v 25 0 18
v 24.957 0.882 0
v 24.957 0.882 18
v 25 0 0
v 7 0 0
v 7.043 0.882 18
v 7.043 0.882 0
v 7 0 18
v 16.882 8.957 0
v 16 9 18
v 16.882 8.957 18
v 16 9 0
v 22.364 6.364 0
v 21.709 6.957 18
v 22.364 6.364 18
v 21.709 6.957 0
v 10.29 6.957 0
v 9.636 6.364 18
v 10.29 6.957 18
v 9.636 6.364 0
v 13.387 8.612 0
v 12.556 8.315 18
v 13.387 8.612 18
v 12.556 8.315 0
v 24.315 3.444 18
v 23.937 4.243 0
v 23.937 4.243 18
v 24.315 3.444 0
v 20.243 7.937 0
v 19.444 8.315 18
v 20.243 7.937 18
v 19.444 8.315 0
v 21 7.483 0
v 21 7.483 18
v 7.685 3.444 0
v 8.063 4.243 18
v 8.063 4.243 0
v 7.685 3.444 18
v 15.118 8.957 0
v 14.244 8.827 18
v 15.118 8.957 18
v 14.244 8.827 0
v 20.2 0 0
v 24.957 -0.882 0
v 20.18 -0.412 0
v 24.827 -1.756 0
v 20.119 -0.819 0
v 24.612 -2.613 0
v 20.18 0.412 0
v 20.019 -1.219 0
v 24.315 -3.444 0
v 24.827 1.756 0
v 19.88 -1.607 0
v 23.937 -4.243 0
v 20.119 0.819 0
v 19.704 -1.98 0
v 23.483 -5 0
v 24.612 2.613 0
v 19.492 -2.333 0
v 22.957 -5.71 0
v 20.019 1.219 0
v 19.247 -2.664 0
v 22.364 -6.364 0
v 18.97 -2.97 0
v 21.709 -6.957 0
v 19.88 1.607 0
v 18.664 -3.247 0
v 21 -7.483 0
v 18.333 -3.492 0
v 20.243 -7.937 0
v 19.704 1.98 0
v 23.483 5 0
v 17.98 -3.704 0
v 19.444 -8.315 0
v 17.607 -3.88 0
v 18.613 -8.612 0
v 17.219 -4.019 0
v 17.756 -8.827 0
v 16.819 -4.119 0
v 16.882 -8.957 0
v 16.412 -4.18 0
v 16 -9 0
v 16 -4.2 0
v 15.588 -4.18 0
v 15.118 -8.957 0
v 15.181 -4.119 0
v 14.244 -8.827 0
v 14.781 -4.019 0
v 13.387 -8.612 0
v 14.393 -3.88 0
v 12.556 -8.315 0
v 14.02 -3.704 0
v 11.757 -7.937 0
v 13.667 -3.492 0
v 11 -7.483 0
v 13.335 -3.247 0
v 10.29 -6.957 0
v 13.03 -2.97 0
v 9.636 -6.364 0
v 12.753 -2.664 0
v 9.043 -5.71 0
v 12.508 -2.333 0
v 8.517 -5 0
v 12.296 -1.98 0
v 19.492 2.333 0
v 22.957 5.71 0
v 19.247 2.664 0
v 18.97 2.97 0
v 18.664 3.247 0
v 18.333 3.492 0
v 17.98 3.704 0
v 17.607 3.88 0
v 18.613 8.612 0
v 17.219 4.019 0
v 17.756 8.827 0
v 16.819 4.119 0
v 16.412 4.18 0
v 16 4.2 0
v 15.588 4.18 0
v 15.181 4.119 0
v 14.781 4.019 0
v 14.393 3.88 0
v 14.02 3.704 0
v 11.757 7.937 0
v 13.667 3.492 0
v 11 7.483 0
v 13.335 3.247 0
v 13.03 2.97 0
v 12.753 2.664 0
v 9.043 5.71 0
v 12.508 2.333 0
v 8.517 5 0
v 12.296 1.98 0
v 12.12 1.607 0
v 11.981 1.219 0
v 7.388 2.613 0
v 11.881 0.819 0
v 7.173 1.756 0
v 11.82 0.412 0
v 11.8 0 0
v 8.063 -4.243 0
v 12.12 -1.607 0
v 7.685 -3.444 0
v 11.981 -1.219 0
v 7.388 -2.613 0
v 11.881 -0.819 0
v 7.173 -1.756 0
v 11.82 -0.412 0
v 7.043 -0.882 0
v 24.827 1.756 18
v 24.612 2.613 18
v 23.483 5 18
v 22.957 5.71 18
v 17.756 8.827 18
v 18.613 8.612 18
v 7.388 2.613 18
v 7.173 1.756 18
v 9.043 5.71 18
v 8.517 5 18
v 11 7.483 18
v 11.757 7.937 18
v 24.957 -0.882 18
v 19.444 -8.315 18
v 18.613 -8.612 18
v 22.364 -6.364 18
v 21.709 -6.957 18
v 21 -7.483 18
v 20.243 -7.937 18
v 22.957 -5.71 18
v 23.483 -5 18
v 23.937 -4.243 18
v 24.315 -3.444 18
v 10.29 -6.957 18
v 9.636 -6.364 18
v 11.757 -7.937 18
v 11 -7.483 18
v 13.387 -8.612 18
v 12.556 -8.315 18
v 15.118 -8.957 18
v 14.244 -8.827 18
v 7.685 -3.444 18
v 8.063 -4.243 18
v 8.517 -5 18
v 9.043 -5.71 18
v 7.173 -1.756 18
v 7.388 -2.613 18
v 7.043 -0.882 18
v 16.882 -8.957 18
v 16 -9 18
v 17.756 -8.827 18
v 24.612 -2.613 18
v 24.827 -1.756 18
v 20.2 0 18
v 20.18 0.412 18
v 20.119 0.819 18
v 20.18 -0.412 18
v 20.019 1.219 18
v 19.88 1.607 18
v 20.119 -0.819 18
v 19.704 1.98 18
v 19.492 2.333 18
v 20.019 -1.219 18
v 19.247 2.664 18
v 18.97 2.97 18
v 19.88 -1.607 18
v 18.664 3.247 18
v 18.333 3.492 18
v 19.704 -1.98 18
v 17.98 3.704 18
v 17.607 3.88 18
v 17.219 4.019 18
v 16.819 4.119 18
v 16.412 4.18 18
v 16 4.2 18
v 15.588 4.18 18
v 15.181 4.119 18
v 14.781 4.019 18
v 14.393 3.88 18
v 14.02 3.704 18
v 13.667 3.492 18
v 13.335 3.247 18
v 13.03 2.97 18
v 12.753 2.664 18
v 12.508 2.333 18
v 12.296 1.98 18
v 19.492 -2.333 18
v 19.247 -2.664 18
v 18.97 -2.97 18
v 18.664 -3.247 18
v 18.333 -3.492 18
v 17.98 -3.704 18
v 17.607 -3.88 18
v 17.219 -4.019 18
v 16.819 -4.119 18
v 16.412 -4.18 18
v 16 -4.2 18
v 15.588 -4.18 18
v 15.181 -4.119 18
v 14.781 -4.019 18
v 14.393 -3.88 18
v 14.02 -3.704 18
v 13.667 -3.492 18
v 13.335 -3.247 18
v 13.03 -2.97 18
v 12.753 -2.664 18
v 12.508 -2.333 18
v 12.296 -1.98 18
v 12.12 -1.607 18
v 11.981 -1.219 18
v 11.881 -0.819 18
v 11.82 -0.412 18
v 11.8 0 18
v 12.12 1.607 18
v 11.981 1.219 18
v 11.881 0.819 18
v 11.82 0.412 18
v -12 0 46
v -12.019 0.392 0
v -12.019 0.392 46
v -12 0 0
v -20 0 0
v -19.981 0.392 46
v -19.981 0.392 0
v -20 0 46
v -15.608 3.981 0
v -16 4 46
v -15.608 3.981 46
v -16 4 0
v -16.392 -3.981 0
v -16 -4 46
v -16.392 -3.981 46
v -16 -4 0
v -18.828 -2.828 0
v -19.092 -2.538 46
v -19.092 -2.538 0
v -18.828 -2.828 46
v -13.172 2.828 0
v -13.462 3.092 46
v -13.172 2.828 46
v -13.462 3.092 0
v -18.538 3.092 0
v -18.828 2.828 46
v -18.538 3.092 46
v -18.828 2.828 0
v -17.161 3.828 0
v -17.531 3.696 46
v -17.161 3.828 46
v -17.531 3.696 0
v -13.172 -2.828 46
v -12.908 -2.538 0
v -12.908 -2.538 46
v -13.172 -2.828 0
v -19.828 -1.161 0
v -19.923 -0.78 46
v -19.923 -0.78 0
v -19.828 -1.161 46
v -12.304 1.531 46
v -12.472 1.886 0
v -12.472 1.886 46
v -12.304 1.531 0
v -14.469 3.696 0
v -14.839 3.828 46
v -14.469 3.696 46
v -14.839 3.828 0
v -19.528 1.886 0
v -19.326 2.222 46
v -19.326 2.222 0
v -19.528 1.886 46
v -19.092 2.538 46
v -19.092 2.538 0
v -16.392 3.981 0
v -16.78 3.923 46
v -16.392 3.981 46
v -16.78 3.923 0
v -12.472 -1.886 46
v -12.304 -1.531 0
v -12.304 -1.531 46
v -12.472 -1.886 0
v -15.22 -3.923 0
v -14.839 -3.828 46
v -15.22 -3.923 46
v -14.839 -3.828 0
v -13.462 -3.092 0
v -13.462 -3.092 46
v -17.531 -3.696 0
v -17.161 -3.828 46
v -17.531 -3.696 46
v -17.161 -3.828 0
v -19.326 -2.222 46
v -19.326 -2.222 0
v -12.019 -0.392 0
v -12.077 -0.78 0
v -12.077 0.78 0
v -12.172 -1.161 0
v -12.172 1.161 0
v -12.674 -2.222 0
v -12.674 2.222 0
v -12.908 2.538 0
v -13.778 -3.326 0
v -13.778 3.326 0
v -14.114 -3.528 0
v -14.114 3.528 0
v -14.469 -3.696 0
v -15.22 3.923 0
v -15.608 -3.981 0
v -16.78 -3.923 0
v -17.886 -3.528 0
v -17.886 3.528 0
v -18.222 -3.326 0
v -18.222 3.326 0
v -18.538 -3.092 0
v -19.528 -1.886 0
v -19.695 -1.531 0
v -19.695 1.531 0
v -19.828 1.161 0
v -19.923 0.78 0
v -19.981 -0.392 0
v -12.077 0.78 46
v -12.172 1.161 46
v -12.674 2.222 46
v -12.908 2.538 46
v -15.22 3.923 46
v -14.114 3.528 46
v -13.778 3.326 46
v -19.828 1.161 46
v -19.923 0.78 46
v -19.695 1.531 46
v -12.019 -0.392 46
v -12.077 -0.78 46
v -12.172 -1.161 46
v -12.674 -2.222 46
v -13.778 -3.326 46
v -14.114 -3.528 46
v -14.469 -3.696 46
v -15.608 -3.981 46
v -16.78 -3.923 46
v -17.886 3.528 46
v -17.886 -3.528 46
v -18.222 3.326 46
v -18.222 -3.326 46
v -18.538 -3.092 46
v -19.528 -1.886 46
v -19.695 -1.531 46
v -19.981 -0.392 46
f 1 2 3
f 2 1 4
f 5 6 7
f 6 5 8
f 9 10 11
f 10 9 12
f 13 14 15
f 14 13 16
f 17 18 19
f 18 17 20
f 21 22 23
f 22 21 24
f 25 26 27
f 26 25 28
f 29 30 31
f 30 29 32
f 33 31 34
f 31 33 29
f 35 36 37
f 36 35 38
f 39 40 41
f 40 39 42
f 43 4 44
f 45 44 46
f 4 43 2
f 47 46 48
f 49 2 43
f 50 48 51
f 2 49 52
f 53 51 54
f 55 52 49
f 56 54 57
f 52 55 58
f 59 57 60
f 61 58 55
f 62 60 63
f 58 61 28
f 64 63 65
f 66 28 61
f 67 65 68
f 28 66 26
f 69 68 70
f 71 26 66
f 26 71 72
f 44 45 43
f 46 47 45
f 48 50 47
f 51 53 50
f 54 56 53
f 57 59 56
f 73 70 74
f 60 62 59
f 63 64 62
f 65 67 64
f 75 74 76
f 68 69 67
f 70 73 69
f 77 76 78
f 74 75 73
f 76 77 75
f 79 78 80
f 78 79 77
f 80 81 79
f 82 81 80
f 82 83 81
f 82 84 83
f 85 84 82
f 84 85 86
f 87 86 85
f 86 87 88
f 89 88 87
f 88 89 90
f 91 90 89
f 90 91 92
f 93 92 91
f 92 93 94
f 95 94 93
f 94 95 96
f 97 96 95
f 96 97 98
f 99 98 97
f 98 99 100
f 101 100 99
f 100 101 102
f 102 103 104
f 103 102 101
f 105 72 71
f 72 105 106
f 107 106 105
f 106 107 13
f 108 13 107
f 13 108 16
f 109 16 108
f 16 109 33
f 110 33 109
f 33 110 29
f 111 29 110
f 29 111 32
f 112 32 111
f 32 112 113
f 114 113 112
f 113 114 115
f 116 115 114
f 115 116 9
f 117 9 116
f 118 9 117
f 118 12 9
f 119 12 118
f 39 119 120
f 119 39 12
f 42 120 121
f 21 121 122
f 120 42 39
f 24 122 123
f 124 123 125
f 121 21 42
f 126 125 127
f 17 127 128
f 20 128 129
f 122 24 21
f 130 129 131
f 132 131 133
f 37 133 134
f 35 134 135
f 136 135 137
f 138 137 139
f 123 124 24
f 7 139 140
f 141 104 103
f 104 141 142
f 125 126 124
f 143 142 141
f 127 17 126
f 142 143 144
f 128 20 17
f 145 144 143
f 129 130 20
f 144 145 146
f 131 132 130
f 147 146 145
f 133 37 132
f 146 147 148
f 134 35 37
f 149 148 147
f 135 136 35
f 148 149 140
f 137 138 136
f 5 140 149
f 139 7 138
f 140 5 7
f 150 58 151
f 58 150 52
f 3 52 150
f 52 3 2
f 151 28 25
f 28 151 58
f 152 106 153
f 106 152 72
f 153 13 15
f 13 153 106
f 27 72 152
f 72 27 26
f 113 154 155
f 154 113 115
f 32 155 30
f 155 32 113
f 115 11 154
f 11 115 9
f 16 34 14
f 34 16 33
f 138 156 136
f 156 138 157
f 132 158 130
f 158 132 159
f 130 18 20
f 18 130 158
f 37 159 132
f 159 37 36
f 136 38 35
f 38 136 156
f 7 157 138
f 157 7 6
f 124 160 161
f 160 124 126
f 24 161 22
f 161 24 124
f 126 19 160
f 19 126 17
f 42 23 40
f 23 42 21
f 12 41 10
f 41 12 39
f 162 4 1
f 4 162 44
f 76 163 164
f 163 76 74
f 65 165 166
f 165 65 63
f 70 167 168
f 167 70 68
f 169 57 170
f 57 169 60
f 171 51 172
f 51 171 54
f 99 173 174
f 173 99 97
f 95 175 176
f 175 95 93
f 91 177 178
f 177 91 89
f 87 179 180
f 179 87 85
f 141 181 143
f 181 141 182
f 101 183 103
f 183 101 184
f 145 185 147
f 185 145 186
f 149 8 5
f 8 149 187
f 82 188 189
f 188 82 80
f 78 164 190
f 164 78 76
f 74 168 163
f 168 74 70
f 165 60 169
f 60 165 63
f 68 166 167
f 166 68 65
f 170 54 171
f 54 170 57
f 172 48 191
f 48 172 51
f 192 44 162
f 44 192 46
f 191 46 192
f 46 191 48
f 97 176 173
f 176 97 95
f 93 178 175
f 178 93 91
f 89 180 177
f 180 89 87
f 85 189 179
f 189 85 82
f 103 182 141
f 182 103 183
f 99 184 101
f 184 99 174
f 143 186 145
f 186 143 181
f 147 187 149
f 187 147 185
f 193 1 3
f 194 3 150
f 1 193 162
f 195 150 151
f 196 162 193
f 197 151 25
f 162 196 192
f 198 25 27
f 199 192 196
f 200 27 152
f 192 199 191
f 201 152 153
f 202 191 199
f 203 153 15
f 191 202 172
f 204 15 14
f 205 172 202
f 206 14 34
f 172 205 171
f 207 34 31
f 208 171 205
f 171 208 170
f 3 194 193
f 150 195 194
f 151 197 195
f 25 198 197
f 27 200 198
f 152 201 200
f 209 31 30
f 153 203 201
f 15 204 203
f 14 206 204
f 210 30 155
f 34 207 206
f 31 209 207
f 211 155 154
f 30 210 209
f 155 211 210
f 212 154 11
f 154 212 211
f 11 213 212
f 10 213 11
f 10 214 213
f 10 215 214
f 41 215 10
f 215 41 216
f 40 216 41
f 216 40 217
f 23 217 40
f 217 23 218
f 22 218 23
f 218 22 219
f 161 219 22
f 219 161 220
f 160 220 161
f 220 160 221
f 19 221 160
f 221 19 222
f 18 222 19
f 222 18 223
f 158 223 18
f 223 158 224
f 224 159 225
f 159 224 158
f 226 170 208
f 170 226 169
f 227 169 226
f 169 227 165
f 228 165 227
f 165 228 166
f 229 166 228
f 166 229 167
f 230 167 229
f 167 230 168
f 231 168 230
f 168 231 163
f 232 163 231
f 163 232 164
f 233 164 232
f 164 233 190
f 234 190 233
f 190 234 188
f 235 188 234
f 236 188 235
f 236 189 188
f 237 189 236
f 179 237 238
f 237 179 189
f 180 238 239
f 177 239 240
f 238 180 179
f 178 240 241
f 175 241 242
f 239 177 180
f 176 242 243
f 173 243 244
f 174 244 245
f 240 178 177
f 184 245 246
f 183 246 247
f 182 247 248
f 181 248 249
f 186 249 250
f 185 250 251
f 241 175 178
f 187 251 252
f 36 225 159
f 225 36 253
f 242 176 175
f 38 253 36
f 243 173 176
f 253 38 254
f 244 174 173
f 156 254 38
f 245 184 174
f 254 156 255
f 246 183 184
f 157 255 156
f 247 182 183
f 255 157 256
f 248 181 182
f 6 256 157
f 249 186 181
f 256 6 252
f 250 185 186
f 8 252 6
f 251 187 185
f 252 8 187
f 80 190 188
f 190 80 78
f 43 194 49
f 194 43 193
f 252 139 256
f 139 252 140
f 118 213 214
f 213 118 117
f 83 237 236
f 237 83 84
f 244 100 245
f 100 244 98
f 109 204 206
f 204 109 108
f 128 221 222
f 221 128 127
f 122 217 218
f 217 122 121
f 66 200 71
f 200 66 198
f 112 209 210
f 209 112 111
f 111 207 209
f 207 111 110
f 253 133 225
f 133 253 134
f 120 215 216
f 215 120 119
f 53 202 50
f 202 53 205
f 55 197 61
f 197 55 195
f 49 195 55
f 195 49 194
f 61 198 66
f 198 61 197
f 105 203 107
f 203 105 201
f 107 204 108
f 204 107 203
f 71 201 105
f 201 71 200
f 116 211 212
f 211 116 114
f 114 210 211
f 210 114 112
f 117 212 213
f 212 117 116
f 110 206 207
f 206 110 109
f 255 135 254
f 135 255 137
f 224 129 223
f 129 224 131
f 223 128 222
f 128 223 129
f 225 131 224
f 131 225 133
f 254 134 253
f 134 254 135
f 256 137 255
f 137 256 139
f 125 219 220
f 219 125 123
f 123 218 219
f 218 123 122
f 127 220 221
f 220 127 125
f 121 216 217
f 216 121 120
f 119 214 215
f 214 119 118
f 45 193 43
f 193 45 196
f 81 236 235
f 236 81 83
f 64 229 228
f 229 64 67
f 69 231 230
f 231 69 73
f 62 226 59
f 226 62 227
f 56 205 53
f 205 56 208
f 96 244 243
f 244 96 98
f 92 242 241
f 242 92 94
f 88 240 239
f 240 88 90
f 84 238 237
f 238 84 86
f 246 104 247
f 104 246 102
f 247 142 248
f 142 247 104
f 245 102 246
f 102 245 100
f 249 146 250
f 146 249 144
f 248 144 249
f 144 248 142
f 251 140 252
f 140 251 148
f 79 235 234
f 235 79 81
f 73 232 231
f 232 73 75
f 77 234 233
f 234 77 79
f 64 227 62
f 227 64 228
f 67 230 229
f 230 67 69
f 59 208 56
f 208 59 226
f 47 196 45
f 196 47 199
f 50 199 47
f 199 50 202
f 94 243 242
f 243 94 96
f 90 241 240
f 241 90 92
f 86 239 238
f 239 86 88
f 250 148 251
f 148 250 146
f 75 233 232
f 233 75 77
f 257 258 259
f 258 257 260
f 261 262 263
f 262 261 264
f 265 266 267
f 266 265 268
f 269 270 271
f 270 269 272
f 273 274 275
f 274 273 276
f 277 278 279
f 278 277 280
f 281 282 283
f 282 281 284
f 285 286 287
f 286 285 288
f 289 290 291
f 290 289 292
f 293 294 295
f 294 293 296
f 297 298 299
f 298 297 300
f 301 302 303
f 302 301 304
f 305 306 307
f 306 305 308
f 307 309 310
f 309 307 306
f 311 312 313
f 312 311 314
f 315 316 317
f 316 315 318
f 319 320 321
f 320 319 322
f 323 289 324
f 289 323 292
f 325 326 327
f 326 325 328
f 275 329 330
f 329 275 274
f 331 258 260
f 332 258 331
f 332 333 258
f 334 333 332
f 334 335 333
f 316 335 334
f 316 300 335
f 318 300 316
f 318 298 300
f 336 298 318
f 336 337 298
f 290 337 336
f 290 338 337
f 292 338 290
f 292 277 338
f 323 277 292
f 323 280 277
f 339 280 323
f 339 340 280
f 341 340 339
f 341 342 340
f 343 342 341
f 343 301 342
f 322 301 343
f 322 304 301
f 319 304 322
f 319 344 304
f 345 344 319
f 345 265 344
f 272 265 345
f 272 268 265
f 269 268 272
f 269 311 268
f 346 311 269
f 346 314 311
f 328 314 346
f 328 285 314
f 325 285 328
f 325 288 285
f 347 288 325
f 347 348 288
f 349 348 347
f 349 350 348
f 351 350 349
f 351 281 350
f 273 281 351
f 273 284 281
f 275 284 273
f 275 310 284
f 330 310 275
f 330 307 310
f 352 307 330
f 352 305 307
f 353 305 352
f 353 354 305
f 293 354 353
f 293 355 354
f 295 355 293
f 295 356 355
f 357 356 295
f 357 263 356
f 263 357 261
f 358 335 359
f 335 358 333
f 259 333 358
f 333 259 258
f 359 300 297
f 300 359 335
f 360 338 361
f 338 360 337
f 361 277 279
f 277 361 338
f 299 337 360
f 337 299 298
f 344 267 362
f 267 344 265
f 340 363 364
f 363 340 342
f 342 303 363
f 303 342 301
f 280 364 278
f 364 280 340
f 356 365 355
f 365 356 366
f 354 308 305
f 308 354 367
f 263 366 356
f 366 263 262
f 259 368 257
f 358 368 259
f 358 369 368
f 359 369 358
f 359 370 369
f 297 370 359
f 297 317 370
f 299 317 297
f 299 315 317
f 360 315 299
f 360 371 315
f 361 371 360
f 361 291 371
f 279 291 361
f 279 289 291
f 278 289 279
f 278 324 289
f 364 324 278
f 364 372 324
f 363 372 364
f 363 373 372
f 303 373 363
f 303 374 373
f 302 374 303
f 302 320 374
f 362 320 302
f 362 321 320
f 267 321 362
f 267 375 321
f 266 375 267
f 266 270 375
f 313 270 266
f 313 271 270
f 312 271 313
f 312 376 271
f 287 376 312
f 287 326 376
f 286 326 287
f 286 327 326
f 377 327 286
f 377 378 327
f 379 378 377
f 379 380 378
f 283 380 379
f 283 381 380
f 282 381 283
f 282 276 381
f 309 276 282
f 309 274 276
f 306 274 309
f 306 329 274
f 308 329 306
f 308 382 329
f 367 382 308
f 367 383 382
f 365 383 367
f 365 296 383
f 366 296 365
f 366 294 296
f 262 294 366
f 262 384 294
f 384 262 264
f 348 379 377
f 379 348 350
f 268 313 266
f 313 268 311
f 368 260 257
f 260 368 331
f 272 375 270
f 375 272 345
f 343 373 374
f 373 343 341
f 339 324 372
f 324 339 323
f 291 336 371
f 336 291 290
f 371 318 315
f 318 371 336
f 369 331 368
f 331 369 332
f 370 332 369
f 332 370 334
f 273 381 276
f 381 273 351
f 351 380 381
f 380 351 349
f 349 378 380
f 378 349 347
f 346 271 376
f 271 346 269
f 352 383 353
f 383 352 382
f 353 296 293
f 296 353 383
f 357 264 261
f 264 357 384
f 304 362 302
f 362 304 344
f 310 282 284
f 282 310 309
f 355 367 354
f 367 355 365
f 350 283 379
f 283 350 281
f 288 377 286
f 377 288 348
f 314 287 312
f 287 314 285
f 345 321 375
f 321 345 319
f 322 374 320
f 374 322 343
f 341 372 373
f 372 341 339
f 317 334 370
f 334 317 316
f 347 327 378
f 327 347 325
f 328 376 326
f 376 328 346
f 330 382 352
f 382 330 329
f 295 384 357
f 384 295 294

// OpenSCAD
// Checkpoint 2c - Shaft and bushing, with a real clearance fit.
// Bushing bore is 0.4mm over the shaft, which is what lets it turn.
$fn = 64;
SHAFT = 8;
CLEARANCE = 0.4;
translate([-16, 0, 0]) cylinder(h = 46, r = SHAFT / 2);
translate([16, 0, 0])
  difference() {
    cylinder(h = 18, r = 9);
    translate([0, 0, -1]) cylinder(h = 20, r = (SHAFT + CLEARANCE) / 2);
  }
